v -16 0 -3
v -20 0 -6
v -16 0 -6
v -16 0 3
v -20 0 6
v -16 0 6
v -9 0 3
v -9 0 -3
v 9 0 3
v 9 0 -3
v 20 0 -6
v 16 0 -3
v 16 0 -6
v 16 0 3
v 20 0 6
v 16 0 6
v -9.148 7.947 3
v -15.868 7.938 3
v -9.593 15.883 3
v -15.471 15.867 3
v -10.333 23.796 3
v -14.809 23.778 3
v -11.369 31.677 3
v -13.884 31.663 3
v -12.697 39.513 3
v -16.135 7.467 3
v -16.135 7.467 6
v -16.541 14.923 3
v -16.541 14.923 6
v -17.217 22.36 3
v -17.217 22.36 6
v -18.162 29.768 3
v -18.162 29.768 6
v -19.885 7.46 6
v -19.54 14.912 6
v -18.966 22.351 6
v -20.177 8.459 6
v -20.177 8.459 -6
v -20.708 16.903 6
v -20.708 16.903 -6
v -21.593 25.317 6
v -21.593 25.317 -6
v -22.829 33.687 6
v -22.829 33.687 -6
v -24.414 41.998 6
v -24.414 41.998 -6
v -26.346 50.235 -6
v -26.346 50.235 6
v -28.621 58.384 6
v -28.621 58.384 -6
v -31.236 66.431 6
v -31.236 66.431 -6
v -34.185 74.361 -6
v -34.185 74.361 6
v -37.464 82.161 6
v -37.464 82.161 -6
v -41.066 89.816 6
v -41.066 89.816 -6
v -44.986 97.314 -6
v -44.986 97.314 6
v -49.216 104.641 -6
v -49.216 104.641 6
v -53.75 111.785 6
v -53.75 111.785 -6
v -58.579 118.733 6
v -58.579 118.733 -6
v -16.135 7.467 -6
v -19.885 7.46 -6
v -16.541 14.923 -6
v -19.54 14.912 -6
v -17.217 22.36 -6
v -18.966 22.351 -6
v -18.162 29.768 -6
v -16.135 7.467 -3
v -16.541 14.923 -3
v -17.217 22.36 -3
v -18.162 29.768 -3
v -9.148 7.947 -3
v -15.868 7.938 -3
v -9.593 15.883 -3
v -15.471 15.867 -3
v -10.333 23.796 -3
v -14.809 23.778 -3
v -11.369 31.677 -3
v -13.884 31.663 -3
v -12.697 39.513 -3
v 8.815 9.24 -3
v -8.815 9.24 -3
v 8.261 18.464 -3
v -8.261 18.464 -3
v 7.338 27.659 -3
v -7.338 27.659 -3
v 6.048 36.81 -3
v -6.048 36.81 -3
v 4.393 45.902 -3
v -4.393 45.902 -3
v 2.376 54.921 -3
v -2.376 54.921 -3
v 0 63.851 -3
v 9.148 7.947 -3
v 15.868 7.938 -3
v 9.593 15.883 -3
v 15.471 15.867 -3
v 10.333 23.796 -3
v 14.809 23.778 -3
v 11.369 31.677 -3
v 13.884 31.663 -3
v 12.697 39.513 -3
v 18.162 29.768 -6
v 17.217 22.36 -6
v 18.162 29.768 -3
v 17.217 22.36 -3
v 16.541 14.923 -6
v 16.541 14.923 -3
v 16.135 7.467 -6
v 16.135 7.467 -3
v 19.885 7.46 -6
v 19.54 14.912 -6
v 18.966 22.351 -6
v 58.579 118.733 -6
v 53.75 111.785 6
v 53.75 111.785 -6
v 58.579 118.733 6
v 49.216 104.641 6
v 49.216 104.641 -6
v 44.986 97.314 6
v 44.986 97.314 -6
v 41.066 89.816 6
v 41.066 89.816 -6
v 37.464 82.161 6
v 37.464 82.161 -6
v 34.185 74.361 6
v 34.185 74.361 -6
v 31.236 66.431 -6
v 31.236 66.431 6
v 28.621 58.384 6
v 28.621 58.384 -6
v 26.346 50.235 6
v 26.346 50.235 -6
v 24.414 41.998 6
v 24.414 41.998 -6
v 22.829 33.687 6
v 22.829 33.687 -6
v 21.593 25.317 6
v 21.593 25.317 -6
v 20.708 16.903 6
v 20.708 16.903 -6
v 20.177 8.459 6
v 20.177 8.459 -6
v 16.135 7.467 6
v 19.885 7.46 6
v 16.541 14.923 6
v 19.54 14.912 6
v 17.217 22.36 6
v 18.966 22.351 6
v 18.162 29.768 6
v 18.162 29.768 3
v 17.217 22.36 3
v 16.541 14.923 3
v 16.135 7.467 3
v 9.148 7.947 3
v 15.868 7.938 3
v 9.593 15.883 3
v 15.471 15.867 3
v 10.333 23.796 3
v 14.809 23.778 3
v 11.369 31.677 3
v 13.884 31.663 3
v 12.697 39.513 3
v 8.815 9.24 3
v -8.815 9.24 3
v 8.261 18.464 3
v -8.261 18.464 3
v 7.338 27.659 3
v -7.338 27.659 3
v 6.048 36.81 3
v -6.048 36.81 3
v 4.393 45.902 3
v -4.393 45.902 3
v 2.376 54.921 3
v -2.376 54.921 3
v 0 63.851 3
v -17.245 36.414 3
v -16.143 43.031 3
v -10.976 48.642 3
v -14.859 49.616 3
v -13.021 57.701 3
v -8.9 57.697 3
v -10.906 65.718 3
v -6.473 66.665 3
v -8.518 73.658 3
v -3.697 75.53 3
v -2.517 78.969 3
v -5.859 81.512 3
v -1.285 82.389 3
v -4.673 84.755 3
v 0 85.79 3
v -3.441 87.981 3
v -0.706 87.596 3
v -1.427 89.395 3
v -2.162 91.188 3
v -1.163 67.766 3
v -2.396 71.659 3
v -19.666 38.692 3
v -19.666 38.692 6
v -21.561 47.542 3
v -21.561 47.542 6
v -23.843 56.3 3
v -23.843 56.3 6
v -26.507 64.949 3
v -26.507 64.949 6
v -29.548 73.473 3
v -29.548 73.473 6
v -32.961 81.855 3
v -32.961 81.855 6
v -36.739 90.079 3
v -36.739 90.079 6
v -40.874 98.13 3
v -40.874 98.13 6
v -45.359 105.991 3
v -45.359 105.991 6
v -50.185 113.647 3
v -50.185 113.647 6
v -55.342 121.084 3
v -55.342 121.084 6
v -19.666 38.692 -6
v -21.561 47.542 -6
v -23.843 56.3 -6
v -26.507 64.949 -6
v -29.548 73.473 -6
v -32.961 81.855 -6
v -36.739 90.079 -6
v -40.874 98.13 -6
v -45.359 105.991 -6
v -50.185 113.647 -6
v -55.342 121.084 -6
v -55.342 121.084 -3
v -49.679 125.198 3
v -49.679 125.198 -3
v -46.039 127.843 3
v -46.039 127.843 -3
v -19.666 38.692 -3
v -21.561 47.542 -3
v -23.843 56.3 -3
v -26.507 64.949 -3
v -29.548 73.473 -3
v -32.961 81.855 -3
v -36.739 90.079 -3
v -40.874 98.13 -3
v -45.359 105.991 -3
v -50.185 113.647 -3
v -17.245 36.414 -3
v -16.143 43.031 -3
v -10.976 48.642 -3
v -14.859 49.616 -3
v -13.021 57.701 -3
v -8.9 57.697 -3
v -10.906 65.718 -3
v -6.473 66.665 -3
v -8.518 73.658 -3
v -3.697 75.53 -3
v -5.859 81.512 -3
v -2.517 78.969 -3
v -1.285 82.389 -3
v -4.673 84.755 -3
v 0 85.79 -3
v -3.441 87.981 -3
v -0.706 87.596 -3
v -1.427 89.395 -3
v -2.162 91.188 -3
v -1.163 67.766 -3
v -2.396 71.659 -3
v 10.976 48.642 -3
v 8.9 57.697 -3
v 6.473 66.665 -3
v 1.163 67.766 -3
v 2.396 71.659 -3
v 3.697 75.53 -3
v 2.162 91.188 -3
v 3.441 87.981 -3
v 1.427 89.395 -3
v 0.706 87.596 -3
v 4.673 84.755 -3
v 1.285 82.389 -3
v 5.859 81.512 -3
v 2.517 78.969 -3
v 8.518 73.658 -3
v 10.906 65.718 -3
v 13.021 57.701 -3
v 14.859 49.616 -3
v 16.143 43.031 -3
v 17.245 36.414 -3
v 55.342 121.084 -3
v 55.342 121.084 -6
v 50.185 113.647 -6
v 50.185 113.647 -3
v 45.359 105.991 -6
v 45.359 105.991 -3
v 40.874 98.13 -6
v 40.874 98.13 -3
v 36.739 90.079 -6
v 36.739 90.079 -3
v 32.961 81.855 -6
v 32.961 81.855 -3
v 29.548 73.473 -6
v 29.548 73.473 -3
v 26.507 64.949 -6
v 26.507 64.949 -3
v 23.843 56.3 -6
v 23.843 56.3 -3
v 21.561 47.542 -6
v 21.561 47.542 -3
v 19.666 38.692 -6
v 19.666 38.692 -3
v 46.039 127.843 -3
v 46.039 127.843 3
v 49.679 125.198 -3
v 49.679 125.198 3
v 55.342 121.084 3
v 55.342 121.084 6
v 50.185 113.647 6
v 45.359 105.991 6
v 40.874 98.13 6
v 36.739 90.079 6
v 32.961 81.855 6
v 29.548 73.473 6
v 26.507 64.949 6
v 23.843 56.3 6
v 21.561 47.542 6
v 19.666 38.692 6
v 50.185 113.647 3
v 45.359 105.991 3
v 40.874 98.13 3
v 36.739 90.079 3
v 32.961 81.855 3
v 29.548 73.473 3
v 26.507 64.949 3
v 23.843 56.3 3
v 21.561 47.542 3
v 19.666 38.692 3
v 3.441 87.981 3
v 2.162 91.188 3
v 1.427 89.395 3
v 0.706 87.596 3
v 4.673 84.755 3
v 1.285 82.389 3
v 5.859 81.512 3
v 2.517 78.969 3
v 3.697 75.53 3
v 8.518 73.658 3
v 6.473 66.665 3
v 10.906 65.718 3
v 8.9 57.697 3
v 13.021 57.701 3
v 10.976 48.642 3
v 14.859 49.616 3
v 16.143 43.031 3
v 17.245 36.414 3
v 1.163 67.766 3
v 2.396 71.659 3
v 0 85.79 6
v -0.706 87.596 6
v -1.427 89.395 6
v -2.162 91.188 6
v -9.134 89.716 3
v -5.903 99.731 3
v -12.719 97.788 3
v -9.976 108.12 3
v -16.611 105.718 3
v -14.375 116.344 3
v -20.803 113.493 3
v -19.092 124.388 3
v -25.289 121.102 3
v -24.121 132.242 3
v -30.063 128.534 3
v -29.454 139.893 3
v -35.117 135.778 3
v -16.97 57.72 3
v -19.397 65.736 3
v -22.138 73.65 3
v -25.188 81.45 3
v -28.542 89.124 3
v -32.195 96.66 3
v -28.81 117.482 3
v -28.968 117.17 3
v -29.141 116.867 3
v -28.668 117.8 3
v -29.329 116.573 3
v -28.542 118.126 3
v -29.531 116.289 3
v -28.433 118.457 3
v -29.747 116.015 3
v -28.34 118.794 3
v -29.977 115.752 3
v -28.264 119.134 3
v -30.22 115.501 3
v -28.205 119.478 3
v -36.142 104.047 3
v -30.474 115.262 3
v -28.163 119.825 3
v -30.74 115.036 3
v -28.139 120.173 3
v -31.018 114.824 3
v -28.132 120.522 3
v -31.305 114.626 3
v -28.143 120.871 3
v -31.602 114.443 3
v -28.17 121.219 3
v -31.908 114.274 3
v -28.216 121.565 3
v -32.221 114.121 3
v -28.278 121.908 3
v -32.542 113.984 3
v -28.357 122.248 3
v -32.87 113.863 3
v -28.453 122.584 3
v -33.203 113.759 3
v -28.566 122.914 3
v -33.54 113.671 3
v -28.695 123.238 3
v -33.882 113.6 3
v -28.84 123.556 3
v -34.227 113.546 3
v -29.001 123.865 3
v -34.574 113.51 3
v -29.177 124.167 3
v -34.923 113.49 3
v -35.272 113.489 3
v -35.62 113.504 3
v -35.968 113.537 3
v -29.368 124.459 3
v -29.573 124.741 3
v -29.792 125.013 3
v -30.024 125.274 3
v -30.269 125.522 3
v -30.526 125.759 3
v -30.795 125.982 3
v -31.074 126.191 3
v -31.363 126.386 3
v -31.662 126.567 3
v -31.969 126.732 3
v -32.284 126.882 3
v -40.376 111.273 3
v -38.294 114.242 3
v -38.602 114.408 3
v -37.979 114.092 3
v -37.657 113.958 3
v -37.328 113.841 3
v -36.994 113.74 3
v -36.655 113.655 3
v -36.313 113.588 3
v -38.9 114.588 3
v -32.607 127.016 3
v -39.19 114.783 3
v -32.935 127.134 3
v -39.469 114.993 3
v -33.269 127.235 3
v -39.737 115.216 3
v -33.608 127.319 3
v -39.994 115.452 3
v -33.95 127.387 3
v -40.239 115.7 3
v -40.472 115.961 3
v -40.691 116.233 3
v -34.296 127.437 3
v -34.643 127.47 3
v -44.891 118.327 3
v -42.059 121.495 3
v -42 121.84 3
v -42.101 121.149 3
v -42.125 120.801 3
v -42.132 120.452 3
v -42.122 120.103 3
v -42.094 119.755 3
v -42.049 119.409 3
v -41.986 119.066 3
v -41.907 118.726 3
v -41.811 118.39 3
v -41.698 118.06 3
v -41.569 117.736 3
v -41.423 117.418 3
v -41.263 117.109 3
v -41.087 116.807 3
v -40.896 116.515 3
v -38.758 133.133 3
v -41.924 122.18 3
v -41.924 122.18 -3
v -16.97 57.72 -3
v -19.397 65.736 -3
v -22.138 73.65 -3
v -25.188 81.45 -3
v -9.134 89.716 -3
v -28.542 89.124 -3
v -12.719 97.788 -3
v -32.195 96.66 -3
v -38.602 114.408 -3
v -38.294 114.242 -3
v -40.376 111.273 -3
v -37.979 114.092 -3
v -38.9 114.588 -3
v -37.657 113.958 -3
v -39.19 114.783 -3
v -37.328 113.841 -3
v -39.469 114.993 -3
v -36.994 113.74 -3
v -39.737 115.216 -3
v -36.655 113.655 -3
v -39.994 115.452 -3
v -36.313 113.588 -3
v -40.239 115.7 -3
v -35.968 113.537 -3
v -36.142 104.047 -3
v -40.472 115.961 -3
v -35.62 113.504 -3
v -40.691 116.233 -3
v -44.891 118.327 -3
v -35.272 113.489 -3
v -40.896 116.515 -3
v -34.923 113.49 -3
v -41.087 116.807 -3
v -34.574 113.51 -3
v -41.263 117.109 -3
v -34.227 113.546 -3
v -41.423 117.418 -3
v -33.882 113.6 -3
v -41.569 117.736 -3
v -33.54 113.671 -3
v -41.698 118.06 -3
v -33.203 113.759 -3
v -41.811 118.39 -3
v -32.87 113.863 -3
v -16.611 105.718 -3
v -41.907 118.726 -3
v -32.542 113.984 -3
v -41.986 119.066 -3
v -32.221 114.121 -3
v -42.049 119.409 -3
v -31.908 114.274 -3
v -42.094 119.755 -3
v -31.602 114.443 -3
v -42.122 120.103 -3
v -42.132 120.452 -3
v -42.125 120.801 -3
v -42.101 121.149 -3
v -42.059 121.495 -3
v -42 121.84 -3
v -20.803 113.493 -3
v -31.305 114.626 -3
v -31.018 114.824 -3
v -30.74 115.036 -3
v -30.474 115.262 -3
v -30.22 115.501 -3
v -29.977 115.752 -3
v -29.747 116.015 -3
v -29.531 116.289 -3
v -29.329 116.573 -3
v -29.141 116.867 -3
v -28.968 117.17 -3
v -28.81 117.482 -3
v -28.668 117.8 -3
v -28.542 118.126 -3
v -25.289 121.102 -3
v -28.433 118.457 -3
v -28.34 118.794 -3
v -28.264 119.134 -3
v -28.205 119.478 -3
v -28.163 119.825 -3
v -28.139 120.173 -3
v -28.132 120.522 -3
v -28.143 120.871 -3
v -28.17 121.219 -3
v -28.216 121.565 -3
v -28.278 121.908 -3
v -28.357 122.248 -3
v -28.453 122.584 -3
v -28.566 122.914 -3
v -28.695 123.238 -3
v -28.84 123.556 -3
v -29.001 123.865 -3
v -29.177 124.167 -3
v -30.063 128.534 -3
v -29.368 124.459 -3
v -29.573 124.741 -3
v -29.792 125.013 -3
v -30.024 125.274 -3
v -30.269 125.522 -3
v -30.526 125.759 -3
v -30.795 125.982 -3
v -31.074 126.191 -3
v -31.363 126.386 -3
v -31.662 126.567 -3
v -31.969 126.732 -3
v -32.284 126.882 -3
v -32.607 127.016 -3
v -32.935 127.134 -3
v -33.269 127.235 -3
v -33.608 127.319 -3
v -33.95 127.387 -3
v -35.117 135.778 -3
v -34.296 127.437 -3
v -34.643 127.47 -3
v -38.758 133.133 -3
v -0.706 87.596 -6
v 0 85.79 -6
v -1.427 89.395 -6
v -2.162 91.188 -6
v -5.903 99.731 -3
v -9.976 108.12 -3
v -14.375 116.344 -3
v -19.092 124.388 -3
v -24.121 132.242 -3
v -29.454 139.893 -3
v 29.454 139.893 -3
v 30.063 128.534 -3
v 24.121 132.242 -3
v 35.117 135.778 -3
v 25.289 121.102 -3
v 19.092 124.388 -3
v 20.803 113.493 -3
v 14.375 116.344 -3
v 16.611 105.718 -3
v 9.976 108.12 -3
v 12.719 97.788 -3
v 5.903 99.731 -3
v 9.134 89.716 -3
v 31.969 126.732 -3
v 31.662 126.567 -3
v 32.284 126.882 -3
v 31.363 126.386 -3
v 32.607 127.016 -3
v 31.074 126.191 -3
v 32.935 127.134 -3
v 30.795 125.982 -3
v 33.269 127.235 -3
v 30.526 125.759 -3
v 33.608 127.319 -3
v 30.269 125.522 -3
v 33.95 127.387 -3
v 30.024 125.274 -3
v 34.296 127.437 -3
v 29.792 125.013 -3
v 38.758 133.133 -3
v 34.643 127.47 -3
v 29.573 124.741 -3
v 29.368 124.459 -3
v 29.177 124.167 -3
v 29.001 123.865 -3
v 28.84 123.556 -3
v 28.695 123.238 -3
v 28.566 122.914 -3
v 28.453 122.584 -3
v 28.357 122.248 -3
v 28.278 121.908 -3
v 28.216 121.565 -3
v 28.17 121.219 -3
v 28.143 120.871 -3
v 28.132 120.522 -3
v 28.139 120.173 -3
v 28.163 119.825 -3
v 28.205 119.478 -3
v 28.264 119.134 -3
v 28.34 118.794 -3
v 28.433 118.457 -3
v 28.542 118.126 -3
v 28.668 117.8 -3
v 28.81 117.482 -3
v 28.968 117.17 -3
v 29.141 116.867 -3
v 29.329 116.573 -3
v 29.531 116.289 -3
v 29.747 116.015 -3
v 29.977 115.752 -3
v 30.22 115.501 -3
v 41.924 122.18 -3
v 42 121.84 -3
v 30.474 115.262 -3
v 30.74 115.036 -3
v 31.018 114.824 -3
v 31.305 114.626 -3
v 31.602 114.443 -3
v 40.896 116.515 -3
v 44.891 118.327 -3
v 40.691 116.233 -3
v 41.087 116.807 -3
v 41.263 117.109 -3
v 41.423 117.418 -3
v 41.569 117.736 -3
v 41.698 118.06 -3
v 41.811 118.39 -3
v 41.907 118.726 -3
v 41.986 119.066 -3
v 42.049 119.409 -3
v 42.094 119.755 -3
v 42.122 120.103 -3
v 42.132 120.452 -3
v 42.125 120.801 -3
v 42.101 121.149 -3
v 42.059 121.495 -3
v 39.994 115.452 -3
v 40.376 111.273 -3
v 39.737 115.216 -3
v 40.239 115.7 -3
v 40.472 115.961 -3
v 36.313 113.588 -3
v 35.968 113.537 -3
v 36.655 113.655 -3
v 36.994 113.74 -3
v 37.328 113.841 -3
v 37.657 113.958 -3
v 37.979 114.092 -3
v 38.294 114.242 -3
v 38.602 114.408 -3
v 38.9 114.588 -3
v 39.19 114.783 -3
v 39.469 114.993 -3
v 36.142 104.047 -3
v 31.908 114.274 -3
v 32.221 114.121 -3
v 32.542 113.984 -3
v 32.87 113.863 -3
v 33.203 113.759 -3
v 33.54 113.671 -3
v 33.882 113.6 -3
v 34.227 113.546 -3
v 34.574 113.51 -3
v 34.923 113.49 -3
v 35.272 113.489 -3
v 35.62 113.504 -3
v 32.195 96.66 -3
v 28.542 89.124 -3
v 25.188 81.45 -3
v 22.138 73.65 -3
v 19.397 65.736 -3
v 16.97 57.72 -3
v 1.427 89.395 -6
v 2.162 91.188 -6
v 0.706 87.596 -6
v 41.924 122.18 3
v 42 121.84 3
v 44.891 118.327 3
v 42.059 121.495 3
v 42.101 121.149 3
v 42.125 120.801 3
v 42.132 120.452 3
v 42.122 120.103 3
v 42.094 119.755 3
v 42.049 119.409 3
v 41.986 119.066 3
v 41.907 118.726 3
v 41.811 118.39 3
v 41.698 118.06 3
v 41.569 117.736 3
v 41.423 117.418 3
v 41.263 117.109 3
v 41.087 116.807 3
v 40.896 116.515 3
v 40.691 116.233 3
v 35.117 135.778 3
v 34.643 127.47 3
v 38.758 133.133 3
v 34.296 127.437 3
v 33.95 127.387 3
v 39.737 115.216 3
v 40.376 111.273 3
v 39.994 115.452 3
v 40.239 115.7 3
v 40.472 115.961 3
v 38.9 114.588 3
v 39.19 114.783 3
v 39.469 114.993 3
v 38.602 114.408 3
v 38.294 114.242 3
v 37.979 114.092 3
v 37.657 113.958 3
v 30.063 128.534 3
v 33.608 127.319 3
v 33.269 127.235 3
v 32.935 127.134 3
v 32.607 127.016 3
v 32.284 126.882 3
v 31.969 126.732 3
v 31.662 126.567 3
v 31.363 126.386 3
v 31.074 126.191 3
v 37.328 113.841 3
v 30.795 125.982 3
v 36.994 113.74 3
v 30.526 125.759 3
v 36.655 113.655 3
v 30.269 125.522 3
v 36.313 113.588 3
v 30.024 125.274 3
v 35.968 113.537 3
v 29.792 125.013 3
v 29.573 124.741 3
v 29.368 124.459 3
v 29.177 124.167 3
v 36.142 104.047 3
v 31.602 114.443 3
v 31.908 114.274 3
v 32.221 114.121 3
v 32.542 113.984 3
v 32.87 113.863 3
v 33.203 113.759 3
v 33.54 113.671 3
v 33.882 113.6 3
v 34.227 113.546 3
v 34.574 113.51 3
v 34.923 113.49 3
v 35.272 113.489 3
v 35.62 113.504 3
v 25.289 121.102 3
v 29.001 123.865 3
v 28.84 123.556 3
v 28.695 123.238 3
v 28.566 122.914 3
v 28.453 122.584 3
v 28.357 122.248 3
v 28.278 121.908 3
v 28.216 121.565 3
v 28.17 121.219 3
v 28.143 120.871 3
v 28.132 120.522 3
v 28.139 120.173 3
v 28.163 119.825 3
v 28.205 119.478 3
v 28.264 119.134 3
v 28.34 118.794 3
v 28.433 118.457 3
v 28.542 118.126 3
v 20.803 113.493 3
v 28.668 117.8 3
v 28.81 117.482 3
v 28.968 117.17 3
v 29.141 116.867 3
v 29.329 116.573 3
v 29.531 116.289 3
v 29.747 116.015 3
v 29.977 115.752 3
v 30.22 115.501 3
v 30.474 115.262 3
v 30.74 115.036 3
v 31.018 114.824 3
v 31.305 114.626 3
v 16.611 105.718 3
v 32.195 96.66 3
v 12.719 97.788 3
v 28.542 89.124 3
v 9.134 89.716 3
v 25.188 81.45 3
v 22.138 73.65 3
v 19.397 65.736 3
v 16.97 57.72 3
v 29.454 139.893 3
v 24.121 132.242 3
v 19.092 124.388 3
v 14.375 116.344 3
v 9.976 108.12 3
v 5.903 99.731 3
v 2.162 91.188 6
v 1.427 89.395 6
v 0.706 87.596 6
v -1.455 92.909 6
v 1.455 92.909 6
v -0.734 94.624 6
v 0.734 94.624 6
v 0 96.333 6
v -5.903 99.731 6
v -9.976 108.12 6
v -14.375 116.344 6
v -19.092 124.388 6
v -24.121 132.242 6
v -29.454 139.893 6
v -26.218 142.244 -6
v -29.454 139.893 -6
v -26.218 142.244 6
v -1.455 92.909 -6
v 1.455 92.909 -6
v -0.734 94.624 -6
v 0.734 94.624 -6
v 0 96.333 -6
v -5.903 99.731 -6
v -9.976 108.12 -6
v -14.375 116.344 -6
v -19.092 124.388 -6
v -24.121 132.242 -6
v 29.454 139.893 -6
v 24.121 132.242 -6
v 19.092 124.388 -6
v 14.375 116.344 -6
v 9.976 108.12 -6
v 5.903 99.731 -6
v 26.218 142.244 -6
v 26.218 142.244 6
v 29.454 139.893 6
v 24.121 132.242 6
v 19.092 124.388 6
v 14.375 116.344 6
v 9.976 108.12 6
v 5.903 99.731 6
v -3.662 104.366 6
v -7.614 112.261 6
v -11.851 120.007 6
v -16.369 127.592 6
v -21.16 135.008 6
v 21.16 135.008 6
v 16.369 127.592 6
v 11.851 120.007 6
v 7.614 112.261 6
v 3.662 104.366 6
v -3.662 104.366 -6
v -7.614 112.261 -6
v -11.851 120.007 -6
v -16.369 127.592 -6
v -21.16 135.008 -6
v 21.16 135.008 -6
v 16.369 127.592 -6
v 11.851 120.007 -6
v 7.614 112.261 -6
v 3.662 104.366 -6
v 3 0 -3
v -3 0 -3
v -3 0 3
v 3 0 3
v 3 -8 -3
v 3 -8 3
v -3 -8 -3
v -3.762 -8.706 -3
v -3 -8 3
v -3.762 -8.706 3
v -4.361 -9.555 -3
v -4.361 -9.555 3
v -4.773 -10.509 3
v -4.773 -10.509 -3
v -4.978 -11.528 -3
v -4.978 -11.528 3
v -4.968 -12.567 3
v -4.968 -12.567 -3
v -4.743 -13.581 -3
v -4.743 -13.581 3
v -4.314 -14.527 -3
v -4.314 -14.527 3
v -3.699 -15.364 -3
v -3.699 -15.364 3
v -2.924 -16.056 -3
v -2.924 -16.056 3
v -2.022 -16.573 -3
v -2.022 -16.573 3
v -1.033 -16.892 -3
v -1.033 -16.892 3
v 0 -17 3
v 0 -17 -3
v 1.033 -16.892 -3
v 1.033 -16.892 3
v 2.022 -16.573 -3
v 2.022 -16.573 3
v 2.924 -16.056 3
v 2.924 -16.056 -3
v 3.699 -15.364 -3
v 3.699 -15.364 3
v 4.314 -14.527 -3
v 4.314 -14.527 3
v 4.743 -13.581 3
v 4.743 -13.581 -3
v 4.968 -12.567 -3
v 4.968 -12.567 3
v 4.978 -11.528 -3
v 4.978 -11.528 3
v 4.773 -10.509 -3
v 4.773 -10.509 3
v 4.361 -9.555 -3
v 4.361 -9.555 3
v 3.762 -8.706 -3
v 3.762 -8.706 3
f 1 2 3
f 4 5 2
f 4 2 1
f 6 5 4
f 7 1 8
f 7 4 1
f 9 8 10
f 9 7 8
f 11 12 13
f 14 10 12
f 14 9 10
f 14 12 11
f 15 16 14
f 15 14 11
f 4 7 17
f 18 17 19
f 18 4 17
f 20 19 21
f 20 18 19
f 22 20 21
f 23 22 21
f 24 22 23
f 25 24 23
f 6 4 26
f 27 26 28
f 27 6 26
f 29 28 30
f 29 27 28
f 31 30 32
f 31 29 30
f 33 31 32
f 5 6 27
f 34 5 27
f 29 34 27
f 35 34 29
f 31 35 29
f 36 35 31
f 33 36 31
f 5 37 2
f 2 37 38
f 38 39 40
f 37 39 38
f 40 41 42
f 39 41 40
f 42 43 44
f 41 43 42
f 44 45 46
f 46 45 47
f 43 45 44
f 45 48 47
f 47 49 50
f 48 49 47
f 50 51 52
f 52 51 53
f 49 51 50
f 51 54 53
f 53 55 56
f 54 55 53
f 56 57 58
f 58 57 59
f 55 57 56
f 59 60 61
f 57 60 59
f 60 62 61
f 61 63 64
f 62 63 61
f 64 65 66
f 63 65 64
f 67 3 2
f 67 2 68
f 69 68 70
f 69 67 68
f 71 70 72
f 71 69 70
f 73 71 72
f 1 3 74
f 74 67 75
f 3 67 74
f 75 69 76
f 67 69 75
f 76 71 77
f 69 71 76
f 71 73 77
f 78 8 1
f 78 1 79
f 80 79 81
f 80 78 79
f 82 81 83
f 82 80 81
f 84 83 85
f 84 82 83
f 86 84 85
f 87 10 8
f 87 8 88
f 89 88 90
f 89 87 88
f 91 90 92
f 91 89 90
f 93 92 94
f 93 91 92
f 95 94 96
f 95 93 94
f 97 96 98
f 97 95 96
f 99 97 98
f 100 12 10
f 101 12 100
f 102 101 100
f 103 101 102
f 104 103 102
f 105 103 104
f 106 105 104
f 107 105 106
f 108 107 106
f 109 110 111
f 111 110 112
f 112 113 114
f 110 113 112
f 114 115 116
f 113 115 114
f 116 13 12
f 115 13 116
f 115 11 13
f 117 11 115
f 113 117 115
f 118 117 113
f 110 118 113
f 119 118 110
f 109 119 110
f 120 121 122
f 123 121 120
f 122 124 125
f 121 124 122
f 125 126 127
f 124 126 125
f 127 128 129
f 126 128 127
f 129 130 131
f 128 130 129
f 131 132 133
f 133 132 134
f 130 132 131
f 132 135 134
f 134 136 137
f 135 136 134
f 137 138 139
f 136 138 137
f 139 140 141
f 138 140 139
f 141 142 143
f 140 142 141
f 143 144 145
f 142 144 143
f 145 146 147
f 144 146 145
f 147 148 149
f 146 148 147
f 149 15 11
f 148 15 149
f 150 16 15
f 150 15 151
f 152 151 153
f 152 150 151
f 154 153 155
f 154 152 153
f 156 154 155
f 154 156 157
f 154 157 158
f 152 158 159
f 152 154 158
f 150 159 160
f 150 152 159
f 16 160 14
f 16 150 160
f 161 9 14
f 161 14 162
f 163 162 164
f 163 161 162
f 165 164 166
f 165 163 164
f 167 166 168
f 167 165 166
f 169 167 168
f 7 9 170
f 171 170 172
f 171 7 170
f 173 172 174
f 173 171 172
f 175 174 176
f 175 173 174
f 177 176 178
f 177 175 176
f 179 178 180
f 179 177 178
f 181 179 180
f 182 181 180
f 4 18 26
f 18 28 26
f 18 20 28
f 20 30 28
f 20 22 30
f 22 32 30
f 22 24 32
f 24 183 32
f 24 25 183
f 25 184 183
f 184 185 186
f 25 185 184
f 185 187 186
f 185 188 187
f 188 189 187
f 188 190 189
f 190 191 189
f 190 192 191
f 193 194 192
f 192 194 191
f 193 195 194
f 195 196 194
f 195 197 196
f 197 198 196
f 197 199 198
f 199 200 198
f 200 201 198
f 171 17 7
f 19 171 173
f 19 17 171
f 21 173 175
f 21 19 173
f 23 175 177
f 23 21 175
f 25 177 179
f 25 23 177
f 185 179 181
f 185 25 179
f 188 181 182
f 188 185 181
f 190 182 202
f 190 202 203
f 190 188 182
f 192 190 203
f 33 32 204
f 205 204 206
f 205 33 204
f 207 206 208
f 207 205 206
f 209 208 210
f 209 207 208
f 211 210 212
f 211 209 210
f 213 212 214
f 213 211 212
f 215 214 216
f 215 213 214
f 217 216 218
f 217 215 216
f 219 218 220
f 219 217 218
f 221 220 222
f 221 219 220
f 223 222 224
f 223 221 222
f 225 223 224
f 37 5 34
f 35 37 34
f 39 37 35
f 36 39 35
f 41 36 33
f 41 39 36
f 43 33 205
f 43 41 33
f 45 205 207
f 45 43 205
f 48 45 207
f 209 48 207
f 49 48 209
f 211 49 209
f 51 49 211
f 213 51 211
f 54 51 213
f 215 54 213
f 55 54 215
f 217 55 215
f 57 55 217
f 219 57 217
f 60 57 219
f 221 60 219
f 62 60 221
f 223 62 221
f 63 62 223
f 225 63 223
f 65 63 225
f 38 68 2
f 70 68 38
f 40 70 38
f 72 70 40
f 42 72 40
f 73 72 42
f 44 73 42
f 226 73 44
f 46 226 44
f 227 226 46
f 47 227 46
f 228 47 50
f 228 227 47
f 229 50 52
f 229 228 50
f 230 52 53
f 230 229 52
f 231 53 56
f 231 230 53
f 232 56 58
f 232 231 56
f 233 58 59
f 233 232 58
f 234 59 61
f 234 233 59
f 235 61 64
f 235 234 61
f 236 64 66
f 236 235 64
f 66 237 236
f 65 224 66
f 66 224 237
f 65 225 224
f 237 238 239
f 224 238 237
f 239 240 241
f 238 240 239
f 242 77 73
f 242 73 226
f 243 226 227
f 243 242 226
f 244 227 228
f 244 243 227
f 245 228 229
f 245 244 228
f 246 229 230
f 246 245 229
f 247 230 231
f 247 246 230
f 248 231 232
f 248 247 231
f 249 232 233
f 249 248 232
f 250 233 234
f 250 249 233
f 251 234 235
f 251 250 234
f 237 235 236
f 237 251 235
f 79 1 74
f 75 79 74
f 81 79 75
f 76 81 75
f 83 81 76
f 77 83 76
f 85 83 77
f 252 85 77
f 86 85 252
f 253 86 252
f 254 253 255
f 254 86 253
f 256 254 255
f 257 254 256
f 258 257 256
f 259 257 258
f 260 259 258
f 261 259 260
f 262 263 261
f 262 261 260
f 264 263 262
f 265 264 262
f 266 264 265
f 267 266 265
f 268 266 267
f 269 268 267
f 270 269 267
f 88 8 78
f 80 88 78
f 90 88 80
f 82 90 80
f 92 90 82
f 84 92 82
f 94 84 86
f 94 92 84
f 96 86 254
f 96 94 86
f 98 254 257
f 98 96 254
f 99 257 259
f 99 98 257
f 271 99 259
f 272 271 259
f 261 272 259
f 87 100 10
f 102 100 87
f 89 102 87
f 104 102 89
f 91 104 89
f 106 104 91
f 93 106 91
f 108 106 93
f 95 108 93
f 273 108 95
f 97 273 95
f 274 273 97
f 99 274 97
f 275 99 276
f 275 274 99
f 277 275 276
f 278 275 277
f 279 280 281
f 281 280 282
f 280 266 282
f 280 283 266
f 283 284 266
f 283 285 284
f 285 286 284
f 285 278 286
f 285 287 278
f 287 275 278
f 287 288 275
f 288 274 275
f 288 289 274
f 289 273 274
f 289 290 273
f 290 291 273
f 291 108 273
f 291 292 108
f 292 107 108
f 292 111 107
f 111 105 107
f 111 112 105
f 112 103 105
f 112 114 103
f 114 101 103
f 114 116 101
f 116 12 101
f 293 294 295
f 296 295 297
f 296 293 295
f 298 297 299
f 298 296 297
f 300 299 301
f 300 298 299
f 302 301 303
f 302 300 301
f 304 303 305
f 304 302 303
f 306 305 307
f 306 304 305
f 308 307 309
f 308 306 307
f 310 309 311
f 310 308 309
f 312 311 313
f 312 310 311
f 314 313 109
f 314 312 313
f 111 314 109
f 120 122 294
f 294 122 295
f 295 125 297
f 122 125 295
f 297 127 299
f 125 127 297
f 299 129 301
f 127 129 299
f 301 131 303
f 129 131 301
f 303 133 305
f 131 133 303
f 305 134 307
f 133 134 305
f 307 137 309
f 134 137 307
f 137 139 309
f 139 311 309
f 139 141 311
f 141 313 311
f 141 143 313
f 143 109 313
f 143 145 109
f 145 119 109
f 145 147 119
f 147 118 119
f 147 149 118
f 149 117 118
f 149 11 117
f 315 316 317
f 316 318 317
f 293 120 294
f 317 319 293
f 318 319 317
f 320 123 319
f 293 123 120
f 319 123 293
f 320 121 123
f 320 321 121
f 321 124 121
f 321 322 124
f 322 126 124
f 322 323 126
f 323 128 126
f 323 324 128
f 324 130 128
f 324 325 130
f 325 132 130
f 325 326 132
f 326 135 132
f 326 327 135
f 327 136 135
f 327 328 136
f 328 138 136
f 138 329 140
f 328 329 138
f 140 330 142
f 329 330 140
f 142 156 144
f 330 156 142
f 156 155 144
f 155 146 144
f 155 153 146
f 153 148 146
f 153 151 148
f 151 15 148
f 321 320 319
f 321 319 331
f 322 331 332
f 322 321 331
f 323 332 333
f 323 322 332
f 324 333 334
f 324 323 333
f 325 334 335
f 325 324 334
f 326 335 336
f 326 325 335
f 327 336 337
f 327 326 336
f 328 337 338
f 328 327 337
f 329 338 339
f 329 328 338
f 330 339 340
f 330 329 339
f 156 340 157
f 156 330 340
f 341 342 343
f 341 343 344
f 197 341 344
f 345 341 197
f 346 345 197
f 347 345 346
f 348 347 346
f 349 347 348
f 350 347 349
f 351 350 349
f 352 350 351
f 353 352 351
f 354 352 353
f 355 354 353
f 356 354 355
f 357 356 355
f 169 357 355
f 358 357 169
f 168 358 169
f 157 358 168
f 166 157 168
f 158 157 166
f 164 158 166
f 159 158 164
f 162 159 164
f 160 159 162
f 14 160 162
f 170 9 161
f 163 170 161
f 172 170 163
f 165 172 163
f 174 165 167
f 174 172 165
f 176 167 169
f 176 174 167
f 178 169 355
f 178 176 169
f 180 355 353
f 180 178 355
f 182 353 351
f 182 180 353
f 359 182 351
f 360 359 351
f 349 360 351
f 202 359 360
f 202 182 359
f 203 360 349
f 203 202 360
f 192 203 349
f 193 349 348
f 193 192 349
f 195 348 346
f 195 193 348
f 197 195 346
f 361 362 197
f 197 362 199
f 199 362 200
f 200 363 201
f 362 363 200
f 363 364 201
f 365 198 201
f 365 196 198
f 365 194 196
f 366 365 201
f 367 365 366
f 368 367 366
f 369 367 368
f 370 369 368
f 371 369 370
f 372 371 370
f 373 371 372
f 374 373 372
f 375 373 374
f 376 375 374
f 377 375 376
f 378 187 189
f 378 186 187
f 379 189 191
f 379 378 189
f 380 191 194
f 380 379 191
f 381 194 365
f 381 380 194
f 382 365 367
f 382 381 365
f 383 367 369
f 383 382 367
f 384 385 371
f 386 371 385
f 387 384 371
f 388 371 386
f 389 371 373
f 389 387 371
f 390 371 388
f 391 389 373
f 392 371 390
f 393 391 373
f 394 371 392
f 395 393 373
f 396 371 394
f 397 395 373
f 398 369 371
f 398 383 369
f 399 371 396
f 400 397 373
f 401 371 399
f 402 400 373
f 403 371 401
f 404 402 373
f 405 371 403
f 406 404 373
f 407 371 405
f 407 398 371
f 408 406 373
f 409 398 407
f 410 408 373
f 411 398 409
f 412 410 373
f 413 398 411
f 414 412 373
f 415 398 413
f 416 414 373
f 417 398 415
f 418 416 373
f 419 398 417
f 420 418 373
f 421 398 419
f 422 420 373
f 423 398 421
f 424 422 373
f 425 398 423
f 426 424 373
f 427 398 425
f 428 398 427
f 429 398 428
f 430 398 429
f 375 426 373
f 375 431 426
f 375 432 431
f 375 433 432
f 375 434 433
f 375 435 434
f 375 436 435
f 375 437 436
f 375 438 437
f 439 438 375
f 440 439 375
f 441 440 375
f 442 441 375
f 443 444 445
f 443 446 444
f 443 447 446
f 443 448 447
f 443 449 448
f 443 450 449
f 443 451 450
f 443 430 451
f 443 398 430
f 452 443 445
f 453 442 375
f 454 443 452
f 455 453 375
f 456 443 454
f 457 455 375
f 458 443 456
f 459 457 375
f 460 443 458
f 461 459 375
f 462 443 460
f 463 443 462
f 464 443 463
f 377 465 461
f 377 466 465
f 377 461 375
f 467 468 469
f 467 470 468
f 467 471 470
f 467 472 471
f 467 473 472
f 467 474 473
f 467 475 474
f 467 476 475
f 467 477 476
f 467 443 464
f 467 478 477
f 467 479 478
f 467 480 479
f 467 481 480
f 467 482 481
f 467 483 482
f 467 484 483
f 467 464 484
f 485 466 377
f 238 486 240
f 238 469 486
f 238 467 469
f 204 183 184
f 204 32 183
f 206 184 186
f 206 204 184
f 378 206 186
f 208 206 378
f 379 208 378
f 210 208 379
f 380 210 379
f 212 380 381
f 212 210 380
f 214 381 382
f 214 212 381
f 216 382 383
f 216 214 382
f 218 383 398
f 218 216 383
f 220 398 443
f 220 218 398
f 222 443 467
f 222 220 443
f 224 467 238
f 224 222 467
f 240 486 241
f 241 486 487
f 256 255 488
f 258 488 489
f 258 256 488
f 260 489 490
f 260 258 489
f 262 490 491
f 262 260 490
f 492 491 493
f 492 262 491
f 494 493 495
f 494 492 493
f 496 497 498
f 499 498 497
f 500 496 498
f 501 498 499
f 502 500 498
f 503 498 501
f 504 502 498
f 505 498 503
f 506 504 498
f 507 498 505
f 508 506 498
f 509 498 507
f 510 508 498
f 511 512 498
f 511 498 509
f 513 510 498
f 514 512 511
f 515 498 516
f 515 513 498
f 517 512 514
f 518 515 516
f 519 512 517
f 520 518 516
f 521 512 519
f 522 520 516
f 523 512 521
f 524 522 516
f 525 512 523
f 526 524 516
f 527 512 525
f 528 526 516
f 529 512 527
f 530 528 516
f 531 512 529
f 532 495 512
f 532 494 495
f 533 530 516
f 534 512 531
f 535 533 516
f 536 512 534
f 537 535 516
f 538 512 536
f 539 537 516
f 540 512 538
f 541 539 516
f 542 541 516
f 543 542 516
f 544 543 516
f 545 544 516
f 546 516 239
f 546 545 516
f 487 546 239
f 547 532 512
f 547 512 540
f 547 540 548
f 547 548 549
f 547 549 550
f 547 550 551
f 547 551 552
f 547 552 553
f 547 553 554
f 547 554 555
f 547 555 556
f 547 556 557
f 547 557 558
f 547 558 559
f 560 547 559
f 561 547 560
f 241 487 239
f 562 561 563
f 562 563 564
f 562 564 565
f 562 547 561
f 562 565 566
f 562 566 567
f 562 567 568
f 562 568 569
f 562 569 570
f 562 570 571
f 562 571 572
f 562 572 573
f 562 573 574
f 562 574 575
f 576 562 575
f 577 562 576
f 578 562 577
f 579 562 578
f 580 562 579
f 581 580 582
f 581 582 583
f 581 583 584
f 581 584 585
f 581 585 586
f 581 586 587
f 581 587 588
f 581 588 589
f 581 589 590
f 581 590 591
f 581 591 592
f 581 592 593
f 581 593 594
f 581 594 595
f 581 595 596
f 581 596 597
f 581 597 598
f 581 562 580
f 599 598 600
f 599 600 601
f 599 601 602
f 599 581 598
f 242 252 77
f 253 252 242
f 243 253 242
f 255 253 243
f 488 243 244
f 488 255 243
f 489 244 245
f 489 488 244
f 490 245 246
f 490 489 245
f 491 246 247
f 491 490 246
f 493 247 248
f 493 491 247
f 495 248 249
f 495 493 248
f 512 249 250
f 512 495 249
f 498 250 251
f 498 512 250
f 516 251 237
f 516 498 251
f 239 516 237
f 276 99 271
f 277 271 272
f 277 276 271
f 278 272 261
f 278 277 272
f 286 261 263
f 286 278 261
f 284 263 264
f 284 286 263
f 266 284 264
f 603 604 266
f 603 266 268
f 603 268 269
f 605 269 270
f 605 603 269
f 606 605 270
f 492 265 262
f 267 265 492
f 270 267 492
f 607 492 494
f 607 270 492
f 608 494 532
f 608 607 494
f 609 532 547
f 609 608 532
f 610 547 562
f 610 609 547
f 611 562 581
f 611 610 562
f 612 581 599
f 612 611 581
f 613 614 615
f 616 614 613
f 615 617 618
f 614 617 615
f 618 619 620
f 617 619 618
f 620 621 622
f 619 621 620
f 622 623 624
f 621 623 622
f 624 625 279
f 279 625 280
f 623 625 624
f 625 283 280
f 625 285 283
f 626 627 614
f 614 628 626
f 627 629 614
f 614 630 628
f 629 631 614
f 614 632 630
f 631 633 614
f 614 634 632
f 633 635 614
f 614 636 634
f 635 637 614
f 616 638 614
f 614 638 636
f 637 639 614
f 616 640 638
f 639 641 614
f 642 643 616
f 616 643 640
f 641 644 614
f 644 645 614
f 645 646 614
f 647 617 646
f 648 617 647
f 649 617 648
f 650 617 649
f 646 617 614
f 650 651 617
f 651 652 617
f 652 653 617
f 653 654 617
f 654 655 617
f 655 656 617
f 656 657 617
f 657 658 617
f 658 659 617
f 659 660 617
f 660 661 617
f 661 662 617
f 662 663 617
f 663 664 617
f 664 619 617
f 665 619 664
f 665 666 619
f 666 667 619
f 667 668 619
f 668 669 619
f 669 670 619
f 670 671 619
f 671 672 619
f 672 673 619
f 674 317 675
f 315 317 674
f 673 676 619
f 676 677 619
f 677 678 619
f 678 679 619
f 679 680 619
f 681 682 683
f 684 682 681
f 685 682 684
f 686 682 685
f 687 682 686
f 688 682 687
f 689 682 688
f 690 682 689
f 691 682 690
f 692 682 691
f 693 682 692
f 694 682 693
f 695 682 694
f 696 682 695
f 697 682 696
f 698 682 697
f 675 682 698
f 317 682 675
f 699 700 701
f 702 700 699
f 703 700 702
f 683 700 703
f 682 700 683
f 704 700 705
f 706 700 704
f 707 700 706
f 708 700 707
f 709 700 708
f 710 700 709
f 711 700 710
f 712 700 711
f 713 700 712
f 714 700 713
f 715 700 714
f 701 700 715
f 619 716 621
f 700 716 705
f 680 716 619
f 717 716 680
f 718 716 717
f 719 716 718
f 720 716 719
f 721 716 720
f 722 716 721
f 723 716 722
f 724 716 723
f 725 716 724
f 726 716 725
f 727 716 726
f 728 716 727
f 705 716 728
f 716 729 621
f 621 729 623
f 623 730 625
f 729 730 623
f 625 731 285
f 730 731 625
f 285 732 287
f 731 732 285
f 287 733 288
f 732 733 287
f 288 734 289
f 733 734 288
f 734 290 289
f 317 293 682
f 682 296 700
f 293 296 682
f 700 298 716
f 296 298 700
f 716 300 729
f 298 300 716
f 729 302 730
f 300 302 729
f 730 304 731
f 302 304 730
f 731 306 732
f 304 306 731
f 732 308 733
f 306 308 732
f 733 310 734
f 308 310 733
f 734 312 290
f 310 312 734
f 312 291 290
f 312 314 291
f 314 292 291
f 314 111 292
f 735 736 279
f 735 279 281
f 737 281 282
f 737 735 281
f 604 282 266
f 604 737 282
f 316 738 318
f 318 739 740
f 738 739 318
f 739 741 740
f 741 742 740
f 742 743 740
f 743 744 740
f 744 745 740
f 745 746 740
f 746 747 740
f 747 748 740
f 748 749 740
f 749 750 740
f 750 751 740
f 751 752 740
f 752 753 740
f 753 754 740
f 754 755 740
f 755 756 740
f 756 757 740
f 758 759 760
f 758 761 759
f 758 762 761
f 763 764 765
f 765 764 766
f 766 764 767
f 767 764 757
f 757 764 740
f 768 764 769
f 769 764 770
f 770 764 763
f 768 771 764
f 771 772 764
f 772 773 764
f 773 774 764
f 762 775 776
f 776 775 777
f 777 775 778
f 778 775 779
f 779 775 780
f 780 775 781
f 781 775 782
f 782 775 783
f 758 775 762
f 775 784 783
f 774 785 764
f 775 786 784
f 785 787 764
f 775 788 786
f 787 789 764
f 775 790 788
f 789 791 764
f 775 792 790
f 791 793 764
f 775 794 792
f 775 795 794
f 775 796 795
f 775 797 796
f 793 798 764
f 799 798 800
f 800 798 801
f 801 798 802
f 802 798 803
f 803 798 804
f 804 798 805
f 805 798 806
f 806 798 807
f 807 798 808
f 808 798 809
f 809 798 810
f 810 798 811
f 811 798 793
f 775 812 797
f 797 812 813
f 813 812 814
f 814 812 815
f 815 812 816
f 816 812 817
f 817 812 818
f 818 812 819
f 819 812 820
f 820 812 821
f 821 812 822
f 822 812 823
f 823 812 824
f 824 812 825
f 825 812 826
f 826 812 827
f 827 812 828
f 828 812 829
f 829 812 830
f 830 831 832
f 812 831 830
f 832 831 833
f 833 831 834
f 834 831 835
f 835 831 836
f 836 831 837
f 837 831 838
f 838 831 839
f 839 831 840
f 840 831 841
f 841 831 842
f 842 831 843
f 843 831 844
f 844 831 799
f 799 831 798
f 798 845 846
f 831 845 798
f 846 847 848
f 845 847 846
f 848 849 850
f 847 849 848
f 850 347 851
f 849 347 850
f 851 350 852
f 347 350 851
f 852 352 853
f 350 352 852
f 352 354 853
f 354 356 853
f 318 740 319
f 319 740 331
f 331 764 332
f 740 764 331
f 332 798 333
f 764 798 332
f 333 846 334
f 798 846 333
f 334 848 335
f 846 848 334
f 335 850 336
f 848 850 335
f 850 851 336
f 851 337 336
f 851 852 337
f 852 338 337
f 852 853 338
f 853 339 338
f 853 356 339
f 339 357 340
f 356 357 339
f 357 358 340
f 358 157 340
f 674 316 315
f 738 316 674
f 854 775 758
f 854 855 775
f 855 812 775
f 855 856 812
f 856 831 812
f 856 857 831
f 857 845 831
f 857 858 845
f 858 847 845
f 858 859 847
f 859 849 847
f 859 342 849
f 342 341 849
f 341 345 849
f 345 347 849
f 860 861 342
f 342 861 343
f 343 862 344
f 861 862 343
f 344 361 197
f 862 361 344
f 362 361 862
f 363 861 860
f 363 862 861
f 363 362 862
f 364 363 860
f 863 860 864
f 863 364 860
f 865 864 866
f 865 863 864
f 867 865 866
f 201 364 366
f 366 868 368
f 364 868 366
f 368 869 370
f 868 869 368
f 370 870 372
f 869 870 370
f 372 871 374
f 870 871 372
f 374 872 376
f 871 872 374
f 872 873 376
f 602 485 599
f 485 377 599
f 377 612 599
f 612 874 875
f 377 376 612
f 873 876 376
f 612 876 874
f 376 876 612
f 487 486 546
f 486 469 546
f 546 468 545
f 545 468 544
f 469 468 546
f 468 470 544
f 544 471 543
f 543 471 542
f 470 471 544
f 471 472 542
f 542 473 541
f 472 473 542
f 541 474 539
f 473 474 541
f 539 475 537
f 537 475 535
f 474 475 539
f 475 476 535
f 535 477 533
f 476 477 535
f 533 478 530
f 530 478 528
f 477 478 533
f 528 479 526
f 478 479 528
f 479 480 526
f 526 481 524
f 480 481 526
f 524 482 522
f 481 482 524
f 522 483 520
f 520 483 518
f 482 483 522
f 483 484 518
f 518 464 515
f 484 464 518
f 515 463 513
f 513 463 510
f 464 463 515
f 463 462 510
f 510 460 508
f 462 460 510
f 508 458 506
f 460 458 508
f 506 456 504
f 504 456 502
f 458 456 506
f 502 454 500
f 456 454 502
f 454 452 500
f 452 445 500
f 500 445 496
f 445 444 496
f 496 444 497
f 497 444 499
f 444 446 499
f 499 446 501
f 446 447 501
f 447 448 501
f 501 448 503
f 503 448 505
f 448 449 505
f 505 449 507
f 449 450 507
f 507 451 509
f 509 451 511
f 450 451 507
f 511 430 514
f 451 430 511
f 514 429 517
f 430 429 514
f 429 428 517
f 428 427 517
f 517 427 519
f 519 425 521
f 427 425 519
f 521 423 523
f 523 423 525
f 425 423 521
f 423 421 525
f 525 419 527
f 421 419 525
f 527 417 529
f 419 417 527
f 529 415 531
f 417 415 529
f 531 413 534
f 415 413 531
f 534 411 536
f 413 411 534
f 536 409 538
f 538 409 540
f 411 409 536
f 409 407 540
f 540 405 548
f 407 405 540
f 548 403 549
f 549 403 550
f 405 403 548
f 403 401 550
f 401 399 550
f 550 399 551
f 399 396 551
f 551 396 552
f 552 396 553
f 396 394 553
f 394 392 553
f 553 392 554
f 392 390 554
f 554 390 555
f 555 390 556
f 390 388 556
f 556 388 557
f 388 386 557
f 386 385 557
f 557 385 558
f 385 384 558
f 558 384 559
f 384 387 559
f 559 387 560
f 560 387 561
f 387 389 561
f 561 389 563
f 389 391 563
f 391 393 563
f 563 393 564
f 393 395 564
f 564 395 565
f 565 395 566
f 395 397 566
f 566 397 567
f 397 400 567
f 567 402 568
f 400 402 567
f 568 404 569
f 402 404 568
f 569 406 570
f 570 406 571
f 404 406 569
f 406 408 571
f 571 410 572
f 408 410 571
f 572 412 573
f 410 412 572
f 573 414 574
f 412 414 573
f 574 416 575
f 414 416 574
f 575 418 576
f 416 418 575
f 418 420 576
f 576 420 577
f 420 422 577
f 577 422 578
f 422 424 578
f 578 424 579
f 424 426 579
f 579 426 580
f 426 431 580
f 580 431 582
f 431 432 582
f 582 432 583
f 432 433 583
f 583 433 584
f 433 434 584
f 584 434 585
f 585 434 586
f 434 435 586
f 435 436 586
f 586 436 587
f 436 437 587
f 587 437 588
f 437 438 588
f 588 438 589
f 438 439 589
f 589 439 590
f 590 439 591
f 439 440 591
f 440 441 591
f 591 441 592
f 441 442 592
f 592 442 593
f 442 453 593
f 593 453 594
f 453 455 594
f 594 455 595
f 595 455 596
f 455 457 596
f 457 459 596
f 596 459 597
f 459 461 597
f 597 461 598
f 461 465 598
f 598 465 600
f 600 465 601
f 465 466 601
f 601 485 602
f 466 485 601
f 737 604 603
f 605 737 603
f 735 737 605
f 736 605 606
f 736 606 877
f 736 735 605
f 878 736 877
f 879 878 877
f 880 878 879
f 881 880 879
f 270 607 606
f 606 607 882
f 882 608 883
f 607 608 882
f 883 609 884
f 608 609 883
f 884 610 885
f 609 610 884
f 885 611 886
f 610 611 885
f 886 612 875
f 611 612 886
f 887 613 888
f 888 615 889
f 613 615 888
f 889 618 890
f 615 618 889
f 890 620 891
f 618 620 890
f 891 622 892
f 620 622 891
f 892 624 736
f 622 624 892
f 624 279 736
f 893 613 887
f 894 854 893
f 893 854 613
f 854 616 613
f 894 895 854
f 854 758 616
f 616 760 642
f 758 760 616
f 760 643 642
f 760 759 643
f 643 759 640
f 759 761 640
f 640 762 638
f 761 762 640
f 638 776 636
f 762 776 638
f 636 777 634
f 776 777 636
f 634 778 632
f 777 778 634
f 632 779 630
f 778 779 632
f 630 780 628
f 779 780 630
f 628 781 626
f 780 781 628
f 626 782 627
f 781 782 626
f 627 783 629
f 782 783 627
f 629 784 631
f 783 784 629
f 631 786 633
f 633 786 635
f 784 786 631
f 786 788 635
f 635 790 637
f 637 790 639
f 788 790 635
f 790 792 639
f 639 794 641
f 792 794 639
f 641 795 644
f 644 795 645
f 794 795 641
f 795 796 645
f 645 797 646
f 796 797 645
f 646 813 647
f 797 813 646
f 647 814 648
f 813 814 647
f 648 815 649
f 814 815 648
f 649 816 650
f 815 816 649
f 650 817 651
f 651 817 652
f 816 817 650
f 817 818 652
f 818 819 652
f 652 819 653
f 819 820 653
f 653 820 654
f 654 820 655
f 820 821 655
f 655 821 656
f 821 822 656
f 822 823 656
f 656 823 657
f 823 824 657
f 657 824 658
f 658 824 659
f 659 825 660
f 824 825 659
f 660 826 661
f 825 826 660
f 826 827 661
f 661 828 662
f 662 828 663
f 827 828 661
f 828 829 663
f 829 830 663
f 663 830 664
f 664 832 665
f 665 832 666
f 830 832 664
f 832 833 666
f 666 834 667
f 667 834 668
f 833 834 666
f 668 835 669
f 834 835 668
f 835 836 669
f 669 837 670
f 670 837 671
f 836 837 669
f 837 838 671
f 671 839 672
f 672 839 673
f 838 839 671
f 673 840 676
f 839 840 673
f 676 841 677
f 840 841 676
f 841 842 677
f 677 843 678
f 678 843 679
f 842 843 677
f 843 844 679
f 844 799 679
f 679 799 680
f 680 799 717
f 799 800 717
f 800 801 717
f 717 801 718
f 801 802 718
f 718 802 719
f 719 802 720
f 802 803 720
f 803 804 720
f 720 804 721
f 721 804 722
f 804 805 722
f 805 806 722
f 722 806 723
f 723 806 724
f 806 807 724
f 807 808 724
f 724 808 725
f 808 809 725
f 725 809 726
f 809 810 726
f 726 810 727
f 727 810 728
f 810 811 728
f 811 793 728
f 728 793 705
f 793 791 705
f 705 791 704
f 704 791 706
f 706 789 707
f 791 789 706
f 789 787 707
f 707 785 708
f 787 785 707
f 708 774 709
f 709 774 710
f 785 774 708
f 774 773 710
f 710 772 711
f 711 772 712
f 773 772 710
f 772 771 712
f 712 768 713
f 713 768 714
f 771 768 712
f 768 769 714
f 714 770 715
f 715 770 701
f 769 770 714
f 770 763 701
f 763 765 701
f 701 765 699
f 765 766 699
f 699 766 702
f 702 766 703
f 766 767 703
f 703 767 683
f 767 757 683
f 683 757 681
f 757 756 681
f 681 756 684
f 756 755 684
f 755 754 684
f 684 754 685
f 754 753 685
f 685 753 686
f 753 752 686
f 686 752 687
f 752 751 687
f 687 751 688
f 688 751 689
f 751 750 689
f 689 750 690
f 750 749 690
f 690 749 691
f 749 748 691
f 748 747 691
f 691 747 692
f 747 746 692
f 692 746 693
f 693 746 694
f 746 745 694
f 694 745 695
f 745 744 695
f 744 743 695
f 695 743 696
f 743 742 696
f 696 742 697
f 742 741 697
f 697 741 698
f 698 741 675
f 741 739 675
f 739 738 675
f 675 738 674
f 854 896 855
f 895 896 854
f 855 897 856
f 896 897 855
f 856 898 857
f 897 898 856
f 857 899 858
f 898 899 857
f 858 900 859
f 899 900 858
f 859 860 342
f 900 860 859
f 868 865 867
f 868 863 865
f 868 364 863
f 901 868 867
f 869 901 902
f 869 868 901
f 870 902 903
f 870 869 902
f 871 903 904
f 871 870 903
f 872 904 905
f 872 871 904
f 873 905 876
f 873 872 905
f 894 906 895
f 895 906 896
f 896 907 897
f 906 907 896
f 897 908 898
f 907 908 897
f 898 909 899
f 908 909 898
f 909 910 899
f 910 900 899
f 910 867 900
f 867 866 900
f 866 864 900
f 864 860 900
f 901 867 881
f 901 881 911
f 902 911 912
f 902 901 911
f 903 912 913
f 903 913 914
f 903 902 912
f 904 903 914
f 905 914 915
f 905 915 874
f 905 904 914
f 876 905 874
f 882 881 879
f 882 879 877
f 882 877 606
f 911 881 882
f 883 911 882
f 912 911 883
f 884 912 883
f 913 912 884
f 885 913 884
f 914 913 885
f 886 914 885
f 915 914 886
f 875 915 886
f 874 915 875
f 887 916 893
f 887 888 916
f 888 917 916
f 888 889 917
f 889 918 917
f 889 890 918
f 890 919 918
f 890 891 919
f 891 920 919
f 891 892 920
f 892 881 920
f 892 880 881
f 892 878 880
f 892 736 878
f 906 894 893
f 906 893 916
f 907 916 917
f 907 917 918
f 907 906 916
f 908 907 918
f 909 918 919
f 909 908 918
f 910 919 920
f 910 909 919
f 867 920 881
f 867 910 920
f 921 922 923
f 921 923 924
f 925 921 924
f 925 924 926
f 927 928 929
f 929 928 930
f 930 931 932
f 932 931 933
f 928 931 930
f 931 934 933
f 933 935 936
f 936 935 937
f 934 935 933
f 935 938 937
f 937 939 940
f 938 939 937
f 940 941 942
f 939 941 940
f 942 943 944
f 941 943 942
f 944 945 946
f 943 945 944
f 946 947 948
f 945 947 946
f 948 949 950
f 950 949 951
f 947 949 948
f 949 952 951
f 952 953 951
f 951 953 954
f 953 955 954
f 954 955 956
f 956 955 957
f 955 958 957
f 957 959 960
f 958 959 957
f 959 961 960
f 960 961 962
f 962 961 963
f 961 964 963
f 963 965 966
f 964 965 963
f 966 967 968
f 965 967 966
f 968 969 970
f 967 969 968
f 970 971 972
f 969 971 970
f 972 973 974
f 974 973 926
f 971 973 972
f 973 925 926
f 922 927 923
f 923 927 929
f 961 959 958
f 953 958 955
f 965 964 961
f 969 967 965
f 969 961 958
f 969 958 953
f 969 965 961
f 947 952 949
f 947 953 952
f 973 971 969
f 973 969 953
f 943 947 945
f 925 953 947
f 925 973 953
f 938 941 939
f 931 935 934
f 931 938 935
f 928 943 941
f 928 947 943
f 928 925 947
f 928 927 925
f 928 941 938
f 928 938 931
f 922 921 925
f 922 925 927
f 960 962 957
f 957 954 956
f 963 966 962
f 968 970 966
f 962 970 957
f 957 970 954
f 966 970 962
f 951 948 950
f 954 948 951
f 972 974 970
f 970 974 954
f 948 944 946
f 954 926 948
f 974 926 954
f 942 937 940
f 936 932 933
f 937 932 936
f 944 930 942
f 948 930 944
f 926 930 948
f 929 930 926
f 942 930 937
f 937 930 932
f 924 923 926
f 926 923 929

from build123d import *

# Parameters (mm, degrees)
SKETCH013_W          = 32
SKETCH013_H          = 3
POCKET_DEPTH         = 6.001
POCKET_DEPTH_BACK    = -6.001
POCKET001_DEPTH      = 6.001
POCKET001_DEPTH_BACK = -6.001
PAD_DEPTH            = 3


with BuildPart() as main:
    # AdditivePipe: sweep along a path in Sketch
    with BuildLine(Plane.XY) as additivepipe_path:
        ThreePointArc((0, 0), (-10.865453, 68.601773), (-42.398227, 130.488326))
    # Sketch002 → AdditivePipe (sweep)
    with BuildSketch(Plane.XZ):
        Polygon((-20, 6), (-20, -6), (-16, -6), (-16, -3), (-9, -3), (9, -3), (16, -3), (16, -6), (20, -6), (20, 6), (16, 6), (16, 3), (9, 3), (-9, 3), (-16, 3), (-16, 6), align=None)
    sweep(path=additivepipe_path.line)

    # AdditivePipe001: sweep along a path in Sketch001
    with BuildLine(Plane.XY) as additivepipe001_path:
        ThreePointArc((42.398227, 130.488326), (10.865453, 68.601773), (0, 0))
    # Sketch002 → AdditivePipe001 (sweep)
    with BuildSketch(Plane.XZ):
        Polygon((-20, 6), (-20, -6), (-16, -6), (-16, -3), (-9, -3), (9, -3), (16, -3), (16, -6), (20, -6), (20, 6), (16, 6), (16, 3), (9, 3), (-9, 3), (-16, 3), (-16, 6), align=None)
    sweep(path=additivepipe001_path.line)

    # SubtractivePipe: sweep along a path in Sketch
    with BuildLine(Plane.XY) as subtractivepipe_path:
        ThreePointArc((0, 0), (-10.865453, 68.601773), (-42.398227, 130.488326))
    # Sketch013 (on Face1 of AdditivePipe001) → SubtractivePipe (sweep, cut)
    with BuildSketch(Plane.XZ):
        with Locations((0, 4.5)):
            Rectangle(SKETCH013_W, SKETCH013_H)
    subtractivepipe = sweep(path=subtractivepipe_path.line, mode=Mode.SUBTRACT)

    # SubtractivePipe001: sweep along a path in Sketch001
    with BuildLine(Plane.XY) as subtractivepipe001_path:
        ThreePointArc((42.398227, 130.488326), (10.865453, 68.601773), (0, 0))
    # Sketch013 (on Face1 of AdditivePipe001) → SubtractivePipe001 (sweep, cut)
    with BuildSketch(Plane.XZ):
        with Locations((0, 4.5)):
            Rectangle(SKETCH013_W, SKETCH013_H)
    subtractivepipe001 = sweep(path=subtractivepipe001_path.line, mode=Mode.SUBTRACT)

    # Mirrored: SubtractivePipe across XY
    add(subtractivepipe.mirror(Plane.XY), mode=Mode.SUBTRACT)

    # Mirrored001: SubtractivePipe001 across XY
    add(subtractivepipe001.mirror(Plane.XY), mode=Mode.SUBTRACT)

    # Sketch009 → Pocket (cut, two sides)
    with BuildSketch(Plane.XY) as pocket_sk:
        with BuildLine():
            Line((38.757651, 133.13336), (46.038804, 127.843292))
            Line((46.038804, 127.843292), (41.924307, 122.180173))
            ThreePointArc((34.643154, 127.470241), (31.017586, 114.824218), (41.924307, 122.180173))
            Line((38.757651, 133.13336), (34.643154, 127.470241))
        make_face()
    extrude(amount=-POCKET_DEPTH, mode=Mode.SUBTRACT)
    extrude(pocket_sk.sketch, amount=-POCKET_DEPTH_BACK, mode=Mode.SUBTRACT)

    # Sketch008 → Pocket001 (cut, two sides)
    with BuildSketch(Plane.XY) as pocket001_sk:
        with BuildLine():
            Line((-46.038804, 127.843292), (-38.757651, 133.13336))
            Line((-38.757651, 133.13336), (-34.643154, 127.470241))
            ThreePointArc((-41.924307, 122.180173), (-31.017586, 114.824218), (-34.643154, 127.470241))
            Line((-46.038804, 127.843292), (-41.924307, 122.180173))
        make_face()
    extrude(amount=-POCKET001_DEPTH, mode=Mode.SUBTRACT)
    extrude(pocket001_sk.sketch, amount=-POCKET001_DEPTH_BACK, mode=Mode.SUBTRACT)


with BuildPart() as male1:
    # Sketch010 → Pad (new body, symmetric)
    with BuildSketch(Plane.XY):
        with BuildLine():
            Line((-3, 0), (3, 0))
            Line((3, 0), (3, -8))
            ThreePointArc((-3, -8), (0, -17), (3, -8))
            Line((-3, 0), (-3, -8))
        make_face()
    extrude(amount=PAD_DEPTH, both=True)


solid = Compound([main.part, male1.part])
